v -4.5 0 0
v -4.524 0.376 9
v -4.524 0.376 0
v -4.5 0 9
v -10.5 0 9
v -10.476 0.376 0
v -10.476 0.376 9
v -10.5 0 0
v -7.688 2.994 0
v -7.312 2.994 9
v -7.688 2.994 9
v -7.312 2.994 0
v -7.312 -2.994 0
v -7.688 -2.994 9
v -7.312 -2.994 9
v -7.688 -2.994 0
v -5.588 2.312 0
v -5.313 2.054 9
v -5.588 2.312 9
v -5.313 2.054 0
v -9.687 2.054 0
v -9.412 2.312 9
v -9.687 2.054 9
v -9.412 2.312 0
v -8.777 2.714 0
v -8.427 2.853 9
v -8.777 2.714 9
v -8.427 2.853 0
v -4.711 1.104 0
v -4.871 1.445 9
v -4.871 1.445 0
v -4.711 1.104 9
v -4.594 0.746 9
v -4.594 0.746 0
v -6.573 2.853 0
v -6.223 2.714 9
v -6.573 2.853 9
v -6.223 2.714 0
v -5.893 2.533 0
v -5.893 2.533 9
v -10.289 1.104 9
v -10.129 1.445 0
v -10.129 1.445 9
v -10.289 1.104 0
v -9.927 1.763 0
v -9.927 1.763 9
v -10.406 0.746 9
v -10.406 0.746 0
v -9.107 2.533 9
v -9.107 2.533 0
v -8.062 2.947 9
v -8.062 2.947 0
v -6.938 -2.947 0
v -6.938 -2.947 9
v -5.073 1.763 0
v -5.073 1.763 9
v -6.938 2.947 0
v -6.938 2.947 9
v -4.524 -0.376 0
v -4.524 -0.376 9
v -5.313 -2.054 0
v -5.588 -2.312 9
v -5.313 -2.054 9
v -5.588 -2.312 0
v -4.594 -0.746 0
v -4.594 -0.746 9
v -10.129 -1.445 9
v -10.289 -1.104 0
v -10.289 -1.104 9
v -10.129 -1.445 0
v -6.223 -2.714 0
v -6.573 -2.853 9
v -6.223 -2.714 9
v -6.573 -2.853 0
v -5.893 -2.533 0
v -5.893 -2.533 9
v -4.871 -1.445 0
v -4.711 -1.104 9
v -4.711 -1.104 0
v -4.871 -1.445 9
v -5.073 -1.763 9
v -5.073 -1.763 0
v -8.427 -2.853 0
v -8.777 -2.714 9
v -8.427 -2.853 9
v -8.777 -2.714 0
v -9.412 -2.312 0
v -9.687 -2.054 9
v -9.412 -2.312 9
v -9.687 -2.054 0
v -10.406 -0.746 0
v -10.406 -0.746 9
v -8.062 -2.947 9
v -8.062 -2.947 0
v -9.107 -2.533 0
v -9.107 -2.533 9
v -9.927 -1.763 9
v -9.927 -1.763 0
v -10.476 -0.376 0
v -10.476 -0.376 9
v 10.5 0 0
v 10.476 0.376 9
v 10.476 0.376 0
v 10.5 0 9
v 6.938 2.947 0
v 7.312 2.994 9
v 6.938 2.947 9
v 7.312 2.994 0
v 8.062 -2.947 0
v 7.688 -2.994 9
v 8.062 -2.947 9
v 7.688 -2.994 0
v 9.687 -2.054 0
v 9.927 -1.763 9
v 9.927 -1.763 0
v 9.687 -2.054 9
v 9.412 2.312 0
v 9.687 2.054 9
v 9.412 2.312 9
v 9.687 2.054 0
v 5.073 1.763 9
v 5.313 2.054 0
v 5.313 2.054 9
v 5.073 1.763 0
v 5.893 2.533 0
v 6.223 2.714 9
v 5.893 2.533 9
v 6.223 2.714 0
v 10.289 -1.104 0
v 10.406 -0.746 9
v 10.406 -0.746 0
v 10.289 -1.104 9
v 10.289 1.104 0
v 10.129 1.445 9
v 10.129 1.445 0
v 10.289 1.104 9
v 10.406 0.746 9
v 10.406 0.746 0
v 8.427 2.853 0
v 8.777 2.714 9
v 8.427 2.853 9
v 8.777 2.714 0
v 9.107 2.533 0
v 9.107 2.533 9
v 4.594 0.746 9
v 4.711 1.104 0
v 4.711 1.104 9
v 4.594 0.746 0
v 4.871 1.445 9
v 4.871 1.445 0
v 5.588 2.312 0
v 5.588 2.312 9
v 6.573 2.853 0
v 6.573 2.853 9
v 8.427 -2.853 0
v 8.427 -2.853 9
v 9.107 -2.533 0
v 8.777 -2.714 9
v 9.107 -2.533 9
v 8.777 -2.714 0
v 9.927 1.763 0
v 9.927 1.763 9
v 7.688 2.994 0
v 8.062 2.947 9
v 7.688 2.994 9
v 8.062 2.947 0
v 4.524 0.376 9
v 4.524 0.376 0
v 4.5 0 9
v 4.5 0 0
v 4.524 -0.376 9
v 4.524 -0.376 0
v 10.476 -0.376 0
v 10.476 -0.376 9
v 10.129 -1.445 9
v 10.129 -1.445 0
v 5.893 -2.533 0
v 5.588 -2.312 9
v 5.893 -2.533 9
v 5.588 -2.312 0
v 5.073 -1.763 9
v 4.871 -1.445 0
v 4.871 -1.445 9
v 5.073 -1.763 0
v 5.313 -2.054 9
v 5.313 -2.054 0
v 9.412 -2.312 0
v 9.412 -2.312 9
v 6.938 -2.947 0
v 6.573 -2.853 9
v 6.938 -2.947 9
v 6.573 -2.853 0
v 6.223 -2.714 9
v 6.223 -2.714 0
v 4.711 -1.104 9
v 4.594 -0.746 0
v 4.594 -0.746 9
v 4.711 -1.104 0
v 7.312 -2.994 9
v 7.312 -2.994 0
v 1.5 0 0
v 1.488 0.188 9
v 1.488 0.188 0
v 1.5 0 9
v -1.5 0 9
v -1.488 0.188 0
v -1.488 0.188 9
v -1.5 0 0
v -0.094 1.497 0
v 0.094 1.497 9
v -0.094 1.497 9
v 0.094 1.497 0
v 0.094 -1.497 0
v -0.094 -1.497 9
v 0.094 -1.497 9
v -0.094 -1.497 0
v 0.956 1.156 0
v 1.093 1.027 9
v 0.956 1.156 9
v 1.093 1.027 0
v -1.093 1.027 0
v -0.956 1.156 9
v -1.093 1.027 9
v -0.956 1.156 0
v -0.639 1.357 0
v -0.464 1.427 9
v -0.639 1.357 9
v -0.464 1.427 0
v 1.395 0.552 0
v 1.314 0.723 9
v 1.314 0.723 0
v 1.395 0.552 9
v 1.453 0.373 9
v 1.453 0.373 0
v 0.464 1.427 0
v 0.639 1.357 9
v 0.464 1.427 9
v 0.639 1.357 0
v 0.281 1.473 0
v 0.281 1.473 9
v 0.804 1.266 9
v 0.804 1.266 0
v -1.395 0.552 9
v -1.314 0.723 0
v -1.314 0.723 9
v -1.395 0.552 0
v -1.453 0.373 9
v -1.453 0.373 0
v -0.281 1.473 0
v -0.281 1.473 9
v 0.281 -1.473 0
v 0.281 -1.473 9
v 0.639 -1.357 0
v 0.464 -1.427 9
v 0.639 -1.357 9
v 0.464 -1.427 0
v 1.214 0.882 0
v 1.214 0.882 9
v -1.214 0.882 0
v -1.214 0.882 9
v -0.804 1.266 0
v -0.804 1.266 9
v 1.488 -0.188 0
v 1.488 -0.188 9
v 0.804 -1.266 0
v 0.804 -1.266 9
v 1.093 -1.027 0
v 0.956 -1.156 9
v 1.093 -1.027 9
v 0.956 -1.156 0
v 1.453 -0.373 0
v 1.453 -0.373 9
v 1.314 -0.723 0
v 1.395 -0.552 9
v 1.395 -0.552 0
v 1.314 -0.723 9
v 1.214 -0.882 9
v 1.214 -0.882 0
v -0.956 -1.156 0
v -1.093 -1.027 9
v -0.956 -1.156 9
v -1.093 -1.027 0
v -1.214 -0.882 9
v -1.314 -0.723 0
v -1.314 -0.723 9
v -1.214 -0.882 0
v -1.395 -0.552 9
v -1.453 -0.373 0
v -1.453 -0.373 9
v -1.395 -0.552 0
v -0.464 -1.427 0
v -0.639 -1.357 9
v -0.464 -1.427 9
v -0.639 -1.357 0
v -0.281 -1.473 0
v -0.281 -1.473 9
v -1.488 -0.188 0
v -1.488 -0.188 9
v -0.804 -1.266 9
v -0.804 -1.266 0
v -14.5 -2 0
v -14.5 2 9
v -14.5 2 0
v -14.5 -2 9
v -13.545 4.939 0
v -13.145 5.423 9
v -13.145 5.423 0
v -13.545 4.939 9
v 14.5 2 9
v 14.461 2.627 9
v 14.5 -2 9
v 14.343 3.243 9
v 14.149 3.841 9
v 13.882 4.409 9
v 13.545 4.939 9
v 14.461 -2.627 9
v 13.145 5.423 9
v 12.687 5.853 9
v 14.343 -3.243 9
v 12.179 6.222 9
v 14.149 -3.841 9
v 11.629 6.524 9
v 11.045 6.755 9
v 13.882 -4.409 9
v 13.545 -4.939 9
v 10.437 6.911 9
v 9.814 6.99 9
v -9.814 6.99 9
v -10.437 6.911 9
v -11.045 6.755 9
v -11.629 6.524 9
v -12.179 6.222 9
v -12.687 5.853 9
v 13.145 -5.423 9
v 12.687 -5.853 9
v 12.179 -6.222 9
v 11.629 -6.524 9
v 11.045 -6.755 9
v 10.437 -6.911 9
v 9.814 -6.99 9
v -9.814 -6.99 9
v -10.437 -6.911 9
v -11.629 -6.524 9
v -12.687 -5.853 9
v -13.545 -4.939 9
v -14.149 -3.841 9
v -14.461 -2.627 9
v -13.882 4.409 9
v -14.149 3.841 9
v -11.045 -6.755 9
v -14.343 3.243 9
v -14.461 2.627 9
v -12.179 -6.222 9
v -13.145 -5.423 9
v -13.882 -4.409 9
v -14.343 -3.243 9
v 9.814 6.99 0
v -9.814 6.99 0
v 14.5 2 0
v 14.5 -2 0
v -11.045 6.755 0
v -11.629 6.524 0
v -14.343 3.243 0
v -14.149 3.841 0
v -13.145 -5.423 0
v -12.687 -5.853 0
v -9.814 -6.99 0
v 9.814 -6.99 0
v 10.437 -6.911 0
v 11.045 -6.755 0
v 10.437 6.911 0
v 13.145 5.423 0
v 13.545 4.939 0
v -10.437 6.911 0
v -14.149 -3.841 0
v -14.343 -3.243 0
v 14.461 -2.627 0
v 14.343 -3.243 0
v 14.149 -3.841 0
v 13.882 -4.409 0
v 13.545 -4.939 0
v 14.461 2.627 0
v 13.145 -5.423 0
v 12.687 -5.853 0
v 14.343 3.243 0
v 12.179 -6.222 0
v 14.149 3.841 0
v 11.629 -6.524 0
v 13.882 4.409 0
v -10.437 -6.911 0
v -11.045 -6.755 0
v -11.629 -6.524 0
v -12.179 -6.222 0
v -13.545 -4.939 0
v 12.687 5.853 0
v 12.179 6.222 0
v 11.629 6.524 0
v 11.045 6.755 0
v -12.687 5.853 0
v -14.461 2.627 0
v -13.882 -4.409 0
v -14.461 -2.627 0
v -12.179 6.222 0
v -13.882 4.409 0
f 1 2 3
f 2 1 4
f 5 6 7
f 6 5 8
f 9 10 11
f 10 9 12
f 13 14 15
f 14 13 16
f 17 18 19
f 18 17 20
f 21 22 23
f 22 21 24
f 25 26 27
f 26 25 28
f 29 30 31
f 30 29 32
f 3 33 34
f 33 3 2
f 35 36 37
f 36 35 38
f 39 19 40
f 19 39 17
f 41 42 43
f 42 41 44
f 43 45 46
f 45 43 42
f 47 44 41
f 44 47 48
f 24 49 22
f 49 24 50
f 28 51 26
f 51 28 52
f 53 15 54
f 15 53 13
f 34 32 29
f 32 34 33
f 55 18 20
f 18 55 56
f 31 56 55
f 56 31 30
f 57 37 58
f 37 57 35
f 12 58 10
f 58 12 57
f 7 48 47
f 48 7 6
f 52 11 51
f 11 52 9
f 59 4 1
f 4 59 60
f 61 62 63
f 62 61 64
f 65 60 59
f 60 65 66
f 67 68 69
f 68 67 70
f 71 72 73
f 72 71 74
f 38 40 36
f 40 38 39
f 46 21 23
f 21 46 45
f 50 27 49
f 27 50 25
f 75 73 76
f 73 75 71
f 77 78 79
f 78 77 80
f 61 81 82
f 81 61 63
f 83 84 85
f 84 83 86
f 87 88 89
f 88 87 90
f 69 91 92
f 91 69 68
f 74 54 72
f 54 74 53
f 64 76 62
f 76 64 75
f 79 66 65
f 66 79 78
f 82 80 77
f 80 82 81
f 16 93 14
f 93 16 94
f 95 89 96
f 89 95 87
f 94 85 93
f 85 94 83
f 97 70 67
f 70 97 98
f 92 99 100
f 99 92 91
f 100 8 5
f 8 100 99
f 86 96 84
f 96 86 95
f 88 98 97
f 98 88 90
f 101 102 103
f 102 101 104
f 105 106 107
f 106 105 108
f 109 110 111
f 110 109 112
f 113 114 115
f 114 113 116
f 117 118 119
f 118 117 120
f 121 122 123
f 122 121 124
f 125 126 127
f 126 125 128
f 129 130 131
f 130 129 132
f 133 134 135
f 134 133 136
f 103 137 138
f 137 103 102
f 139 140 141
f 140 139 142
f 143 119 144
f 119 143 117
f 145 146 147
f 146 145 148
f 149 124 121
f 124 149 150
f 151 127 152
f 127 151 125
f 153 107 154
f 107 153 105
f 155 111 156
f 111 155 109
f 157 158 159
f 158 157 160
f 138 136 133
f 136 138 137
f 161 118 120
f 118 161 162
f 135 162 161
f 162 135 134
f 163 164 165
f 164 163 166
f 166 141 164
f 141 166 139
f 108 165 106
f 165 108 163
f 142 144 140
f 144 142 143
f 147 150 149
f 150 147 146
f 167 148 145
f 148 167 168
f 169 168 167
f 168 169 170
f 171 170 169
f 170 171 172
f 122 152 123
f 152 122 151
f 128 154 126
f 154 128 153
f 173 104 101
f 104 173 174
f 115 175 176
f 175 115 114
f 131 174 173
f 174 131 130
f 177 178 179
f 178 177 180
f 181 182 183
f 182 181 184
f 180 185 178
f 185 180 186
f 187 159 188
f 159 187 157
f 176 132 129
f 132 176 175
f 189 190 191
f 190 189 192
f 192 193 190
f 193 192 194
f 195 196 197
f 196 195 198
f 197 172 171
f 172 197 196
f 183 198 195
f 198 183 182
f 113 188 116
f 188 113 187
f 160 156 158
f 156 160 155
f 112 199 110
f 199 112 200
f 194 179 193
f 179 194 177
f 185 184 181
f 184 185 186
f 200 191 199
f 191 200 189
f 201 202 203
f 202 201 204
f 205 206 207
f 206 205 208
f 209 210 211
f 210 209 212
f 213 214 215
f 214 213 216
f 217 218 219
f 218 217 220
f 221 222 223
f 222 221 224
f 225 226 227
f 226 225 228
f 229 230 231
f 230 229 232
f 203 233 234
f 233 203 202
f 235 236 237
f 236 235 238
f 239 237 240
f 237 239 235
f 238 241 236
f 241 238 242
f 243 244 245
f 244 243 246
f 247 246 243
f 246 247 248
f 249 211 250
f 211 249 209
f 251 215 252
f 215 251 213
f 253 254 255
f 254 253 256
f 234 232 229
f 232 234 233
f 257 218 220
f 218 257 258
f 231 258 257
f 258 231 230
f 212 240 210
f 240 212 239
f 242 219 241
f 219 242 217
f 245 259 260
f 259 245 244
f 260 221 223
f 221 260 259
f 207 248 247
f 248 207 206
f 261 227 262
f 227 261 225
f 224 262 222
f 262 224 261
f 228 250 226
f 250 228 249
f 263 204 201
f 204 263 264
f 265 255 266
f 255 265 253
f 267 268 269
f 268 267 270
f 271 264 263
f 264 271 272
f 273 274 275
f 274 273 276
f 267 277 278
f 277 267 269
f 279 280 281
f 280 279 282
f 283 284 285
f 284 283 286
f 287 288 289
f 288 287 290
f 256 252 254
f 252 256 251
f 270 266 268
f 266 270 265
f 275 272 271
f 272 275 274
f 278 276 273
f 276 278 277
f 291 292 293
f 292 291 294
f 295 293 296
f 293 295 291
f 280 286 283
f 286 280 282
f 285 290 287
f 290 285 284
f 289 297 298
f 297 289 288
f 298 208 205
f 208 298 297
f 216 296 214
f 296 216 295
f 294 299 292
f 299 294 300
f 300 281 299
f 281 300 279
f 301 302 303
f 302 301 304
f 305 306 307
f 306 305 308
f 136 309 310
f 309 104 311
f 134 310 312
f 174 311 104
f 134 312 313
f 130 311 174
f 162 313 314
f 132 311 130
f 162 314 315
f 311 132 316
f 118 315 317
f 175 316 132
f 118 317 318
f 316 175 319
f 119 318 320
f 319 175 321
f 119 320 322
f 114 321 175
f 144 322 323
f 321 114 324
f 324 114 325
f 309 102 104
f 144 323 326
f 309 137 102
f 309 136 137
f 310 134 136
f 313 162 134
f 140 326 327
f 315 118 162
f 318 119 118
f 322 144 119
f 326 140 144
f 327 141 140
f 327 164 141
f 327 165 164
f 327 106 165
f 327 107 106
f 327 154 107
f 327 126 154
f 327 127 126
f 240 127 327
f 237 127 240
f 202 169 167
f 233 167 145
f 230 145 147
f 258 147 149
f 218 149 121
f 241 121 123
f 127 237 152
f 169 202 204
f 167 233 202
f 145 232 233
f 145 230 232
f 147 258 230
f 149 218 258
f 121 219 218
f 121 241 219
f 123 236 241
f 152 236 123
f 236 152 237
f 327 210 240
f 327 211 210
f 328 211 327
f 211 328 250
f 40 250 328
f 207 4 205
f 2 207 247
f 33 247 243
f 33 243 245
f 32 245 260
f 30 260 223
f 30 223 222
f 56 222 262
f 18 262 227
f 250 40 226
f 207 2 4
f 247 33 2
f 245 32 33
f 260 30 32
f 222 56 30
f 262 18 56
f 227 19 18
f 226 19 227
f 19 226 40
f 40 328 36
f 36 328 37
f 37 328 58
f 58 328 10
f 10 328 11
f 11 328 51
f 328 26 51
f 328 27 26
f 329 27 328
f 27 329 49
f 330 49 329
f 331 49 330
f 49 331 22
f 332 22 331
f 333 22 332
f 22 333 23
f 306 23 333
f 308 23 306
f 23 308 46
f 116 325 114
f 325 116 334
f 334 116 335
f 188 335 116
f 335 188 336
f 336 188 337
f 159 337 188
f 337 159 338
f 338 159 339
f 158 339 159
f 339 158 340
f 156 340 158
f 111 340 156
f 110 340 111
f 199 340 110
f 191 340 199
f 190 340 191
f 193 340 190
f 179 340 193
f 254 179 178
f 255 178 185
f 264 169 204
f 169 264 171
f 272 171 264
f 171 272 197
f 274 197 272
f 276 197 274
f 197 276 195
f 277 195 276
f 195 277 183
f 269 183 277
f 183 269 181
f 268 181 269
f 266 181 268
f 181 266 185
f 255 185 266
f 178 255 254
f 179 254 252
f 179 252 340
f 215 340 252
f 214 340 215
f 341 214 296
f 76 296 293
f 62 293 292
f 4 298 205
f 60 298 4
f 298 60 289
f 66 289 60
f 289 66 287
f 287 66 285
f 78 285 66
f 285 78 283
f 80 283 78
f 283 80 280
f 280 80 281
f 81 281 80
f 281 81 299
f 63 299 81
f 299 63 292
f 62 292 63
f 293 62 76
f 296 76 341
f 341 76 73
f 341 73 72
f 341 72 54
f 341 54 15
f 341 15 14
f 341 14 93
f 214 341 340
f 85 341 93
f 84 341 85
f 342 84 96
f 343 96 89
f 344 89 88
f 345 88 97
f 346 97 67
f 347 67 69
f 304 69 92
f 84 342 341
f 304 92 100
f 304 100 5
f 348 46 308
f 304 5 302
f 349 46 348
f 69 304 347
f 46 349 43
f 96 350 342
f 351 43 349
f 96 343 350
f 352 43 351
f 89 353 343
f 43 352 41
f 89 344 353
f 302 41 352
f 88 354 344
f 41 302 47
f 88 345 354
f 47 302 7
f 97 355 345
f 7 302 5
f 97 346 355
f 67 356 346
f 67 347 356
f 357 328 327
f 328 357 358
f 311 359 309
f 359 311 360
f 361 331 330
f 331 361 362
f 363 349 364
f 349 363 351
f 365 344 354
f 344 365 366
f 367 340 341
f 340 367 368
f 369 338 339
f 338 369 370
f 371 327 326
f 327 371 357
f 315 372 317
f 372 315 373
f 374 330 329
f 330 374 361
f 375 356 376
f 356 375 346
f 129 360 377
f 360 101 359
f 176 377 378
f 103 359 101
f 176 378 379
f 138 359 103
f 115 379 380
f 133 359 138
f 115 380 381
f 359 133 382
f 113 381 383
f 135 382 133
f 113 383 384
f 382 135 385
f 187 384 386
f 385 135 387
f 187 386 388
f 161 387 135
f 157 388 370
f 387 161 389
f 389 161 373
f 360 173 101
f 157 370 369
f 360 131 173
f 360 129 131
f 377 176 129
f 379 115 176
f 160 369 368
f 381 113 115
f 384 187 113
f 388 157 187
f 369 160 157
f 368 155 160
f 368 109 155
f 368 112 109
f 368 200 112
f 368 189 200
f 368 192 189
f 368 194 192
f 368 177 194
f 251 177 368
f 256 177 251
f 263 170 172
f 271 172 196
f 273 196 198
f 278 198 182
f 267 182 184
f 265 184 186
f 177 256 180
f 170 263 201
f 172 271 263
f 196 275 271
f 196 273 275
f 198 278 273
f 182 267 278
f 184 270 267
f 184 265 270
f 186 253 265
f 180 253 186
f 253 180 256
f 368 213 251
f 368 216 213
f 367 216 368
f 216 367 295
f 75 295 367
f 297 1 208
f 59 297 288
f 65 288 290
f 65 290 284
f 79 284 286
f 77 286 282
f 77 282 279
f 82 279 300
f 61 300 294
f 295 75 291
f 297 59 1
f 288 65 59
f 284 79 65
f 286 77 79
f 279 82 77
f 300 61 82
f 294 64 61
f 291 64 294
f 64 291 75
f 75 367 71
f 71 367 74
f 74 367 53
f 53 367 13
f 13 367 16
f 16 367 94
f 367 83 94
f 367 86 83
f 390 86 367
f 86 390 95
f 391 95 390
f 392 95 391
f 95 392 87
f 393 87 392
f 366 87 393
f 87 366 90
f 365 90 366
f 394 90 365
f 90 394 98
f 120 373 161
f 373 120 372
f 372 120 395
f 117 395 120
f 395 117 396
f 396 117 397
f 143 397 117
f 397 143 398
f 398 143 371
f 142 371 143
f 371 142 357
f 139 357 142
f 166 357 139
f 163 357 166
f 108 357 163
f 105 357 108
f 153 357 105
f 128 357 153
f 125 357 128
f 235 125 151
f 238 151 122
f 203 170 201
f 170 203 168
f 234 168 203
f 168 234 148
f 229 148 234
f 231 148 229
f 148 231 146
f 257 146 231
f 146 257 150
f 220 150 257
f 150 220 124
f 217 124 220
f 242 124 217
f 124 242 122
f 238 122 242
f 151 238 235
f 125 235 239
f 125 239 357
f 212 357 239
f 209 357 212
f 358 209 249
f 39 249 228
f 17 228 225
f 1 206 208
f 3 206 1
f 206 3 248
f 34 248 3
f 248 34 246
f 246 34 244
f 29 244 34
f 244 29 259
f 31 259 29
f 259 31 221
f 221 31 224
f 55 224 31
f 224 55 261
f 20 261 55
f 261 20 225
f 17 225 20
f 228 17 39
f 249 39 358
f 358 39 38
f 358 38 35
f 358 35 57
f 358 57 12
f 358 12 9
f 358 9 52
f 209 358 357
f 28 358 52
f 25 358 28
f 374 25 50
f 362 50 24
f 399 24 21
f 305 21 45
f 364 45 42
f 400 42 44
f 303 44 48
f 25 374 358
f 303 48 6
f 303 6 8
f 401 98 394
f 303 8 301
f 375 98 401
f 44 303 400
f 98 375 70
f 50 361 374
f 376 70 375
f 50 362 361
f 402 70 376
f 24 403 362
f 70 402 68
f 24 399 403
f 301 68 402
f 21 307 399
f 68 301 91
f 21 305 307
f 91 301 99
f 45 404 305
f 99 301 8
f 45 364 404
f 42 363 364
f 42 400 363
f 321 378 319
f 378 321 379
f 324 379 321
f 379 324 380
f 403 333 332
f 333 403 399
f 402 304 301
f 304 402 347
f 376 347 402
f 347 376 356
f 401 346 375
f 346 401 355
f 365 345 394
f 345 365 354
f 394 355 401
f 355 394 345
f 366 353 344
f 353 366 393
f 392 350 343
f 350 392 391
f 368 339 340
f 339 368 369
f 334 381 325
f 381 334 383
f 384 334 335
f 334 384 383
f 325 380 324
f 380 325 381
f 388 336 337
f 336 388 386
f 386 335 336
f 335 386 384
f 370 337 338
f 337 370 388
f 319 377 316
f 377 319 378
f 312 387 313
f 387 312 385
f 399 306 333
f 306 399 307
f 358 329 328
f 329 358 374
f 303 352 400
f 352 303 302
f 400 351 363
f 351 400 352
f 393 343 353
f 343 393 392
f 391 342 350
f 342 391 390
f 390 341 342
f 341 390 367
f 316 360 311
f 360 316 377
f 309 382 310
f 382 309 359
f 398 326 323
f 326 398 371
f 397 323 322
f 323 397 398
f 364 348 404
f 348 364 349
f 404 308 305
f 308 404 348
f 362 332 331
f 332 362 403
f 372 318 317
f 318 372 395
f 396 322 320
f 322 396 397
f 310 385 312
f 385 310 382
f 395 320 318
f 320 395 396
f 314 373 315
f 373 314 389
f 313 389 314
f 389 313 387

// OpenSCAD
$fn = 50;


difference() {
	union() {
		*color(alpha = 1.0000000000, c = "gray") {
			translate(v = [0, 7, 0]) {
				linear_extrude(height = 1) {
					text(font = "Arial:style=Bold", halign = "center", size = 4.5000000000, text = "COMMENT plate main", valign = "center");
				}
			}
		}
		*color(alpha = 1.0000000000, c = "gray") {
			translate(v = [0, 14, 0]) {
				linear_extrude(height = 1) {
					text(font = "Arial:style=Bold", halign = "center", size = 4.5000000000, text = "COMMENT description oobb_plate_shape_p_type_9_depth_2_width_1_height_9_thickness_true_both_holes", valign = "center");
				}
			}
		}
		hull() {
			translate(v = [-9.5000000000, 2.0000000000, 0]) {
				cylinder(h = 9, r = 5);
			}
			translate(v = [9.5000000000, 2.0000000000, 0]) {
				cylinder(h = 9, r = 5);
			}
			translate(v = [-9.5000000000, -2.0000000000, 0]) {
				cylinder(h = 9, r = 5);
			}
			translate(v = [9.5000000000, -2.0000000000, 0]) {
				cylinder(h = 9, r = 5);
			}
		}
	}
	union() {
		*color(alpha = 1.0000000000, c = "gray") {
			translate(v = [0, 7, 0]) {
				linear_extrude(height = 1) {
					text(font = "Arial:style=Bold", halign = "center", size = 4.5000000000, text = "COMMENT holes main", valign = "center");
				}
			}
		}
		*color(alpha = 1.0000000000, c = "gray") {
			translate(v = [0, 14, 0]) {
				linear_extrude(height = 1) {
					text(font = "Arial:style=Bold", halign = "center", size = 4.5000000000, text = "COMMENT description oobb_holes_shape_n_type_2_width_1_height_9_thickness_true_both_holes", valign = "center");
				}
			}
		}
		translate(v = [-7.5000000000, 0.0000000000, 0]) {
			translate(v = [0, 0, -50]) {
				cylinder(h = 100, r = 3.0000000000);
			}
		}
		translate(v = [7.5000000000, 0.0000000000, 0]) {
			translate(v = [0, 0, -50]) {
				cylinder(h = 100, r = 3.0000000000);
			}
		}
		translate(v = [-7.5000000000, 0.0000000000, 0]) {
			translate(v = [0, 0, -50]) {
				cylinder(h = 100, r = 1.5000000000);
			}
		}
		translate(v = [0, 0, -50]) {
			cylinder(h = 100, r = 1.5000000000);
		}
		translate(v = [7.5000000000, 0.0000000000, 0]) {
			translate(v = [0, 0, -50]) {
				cylinder(h = 100, r = 1.5000000000);
			}
		}
	}
}
